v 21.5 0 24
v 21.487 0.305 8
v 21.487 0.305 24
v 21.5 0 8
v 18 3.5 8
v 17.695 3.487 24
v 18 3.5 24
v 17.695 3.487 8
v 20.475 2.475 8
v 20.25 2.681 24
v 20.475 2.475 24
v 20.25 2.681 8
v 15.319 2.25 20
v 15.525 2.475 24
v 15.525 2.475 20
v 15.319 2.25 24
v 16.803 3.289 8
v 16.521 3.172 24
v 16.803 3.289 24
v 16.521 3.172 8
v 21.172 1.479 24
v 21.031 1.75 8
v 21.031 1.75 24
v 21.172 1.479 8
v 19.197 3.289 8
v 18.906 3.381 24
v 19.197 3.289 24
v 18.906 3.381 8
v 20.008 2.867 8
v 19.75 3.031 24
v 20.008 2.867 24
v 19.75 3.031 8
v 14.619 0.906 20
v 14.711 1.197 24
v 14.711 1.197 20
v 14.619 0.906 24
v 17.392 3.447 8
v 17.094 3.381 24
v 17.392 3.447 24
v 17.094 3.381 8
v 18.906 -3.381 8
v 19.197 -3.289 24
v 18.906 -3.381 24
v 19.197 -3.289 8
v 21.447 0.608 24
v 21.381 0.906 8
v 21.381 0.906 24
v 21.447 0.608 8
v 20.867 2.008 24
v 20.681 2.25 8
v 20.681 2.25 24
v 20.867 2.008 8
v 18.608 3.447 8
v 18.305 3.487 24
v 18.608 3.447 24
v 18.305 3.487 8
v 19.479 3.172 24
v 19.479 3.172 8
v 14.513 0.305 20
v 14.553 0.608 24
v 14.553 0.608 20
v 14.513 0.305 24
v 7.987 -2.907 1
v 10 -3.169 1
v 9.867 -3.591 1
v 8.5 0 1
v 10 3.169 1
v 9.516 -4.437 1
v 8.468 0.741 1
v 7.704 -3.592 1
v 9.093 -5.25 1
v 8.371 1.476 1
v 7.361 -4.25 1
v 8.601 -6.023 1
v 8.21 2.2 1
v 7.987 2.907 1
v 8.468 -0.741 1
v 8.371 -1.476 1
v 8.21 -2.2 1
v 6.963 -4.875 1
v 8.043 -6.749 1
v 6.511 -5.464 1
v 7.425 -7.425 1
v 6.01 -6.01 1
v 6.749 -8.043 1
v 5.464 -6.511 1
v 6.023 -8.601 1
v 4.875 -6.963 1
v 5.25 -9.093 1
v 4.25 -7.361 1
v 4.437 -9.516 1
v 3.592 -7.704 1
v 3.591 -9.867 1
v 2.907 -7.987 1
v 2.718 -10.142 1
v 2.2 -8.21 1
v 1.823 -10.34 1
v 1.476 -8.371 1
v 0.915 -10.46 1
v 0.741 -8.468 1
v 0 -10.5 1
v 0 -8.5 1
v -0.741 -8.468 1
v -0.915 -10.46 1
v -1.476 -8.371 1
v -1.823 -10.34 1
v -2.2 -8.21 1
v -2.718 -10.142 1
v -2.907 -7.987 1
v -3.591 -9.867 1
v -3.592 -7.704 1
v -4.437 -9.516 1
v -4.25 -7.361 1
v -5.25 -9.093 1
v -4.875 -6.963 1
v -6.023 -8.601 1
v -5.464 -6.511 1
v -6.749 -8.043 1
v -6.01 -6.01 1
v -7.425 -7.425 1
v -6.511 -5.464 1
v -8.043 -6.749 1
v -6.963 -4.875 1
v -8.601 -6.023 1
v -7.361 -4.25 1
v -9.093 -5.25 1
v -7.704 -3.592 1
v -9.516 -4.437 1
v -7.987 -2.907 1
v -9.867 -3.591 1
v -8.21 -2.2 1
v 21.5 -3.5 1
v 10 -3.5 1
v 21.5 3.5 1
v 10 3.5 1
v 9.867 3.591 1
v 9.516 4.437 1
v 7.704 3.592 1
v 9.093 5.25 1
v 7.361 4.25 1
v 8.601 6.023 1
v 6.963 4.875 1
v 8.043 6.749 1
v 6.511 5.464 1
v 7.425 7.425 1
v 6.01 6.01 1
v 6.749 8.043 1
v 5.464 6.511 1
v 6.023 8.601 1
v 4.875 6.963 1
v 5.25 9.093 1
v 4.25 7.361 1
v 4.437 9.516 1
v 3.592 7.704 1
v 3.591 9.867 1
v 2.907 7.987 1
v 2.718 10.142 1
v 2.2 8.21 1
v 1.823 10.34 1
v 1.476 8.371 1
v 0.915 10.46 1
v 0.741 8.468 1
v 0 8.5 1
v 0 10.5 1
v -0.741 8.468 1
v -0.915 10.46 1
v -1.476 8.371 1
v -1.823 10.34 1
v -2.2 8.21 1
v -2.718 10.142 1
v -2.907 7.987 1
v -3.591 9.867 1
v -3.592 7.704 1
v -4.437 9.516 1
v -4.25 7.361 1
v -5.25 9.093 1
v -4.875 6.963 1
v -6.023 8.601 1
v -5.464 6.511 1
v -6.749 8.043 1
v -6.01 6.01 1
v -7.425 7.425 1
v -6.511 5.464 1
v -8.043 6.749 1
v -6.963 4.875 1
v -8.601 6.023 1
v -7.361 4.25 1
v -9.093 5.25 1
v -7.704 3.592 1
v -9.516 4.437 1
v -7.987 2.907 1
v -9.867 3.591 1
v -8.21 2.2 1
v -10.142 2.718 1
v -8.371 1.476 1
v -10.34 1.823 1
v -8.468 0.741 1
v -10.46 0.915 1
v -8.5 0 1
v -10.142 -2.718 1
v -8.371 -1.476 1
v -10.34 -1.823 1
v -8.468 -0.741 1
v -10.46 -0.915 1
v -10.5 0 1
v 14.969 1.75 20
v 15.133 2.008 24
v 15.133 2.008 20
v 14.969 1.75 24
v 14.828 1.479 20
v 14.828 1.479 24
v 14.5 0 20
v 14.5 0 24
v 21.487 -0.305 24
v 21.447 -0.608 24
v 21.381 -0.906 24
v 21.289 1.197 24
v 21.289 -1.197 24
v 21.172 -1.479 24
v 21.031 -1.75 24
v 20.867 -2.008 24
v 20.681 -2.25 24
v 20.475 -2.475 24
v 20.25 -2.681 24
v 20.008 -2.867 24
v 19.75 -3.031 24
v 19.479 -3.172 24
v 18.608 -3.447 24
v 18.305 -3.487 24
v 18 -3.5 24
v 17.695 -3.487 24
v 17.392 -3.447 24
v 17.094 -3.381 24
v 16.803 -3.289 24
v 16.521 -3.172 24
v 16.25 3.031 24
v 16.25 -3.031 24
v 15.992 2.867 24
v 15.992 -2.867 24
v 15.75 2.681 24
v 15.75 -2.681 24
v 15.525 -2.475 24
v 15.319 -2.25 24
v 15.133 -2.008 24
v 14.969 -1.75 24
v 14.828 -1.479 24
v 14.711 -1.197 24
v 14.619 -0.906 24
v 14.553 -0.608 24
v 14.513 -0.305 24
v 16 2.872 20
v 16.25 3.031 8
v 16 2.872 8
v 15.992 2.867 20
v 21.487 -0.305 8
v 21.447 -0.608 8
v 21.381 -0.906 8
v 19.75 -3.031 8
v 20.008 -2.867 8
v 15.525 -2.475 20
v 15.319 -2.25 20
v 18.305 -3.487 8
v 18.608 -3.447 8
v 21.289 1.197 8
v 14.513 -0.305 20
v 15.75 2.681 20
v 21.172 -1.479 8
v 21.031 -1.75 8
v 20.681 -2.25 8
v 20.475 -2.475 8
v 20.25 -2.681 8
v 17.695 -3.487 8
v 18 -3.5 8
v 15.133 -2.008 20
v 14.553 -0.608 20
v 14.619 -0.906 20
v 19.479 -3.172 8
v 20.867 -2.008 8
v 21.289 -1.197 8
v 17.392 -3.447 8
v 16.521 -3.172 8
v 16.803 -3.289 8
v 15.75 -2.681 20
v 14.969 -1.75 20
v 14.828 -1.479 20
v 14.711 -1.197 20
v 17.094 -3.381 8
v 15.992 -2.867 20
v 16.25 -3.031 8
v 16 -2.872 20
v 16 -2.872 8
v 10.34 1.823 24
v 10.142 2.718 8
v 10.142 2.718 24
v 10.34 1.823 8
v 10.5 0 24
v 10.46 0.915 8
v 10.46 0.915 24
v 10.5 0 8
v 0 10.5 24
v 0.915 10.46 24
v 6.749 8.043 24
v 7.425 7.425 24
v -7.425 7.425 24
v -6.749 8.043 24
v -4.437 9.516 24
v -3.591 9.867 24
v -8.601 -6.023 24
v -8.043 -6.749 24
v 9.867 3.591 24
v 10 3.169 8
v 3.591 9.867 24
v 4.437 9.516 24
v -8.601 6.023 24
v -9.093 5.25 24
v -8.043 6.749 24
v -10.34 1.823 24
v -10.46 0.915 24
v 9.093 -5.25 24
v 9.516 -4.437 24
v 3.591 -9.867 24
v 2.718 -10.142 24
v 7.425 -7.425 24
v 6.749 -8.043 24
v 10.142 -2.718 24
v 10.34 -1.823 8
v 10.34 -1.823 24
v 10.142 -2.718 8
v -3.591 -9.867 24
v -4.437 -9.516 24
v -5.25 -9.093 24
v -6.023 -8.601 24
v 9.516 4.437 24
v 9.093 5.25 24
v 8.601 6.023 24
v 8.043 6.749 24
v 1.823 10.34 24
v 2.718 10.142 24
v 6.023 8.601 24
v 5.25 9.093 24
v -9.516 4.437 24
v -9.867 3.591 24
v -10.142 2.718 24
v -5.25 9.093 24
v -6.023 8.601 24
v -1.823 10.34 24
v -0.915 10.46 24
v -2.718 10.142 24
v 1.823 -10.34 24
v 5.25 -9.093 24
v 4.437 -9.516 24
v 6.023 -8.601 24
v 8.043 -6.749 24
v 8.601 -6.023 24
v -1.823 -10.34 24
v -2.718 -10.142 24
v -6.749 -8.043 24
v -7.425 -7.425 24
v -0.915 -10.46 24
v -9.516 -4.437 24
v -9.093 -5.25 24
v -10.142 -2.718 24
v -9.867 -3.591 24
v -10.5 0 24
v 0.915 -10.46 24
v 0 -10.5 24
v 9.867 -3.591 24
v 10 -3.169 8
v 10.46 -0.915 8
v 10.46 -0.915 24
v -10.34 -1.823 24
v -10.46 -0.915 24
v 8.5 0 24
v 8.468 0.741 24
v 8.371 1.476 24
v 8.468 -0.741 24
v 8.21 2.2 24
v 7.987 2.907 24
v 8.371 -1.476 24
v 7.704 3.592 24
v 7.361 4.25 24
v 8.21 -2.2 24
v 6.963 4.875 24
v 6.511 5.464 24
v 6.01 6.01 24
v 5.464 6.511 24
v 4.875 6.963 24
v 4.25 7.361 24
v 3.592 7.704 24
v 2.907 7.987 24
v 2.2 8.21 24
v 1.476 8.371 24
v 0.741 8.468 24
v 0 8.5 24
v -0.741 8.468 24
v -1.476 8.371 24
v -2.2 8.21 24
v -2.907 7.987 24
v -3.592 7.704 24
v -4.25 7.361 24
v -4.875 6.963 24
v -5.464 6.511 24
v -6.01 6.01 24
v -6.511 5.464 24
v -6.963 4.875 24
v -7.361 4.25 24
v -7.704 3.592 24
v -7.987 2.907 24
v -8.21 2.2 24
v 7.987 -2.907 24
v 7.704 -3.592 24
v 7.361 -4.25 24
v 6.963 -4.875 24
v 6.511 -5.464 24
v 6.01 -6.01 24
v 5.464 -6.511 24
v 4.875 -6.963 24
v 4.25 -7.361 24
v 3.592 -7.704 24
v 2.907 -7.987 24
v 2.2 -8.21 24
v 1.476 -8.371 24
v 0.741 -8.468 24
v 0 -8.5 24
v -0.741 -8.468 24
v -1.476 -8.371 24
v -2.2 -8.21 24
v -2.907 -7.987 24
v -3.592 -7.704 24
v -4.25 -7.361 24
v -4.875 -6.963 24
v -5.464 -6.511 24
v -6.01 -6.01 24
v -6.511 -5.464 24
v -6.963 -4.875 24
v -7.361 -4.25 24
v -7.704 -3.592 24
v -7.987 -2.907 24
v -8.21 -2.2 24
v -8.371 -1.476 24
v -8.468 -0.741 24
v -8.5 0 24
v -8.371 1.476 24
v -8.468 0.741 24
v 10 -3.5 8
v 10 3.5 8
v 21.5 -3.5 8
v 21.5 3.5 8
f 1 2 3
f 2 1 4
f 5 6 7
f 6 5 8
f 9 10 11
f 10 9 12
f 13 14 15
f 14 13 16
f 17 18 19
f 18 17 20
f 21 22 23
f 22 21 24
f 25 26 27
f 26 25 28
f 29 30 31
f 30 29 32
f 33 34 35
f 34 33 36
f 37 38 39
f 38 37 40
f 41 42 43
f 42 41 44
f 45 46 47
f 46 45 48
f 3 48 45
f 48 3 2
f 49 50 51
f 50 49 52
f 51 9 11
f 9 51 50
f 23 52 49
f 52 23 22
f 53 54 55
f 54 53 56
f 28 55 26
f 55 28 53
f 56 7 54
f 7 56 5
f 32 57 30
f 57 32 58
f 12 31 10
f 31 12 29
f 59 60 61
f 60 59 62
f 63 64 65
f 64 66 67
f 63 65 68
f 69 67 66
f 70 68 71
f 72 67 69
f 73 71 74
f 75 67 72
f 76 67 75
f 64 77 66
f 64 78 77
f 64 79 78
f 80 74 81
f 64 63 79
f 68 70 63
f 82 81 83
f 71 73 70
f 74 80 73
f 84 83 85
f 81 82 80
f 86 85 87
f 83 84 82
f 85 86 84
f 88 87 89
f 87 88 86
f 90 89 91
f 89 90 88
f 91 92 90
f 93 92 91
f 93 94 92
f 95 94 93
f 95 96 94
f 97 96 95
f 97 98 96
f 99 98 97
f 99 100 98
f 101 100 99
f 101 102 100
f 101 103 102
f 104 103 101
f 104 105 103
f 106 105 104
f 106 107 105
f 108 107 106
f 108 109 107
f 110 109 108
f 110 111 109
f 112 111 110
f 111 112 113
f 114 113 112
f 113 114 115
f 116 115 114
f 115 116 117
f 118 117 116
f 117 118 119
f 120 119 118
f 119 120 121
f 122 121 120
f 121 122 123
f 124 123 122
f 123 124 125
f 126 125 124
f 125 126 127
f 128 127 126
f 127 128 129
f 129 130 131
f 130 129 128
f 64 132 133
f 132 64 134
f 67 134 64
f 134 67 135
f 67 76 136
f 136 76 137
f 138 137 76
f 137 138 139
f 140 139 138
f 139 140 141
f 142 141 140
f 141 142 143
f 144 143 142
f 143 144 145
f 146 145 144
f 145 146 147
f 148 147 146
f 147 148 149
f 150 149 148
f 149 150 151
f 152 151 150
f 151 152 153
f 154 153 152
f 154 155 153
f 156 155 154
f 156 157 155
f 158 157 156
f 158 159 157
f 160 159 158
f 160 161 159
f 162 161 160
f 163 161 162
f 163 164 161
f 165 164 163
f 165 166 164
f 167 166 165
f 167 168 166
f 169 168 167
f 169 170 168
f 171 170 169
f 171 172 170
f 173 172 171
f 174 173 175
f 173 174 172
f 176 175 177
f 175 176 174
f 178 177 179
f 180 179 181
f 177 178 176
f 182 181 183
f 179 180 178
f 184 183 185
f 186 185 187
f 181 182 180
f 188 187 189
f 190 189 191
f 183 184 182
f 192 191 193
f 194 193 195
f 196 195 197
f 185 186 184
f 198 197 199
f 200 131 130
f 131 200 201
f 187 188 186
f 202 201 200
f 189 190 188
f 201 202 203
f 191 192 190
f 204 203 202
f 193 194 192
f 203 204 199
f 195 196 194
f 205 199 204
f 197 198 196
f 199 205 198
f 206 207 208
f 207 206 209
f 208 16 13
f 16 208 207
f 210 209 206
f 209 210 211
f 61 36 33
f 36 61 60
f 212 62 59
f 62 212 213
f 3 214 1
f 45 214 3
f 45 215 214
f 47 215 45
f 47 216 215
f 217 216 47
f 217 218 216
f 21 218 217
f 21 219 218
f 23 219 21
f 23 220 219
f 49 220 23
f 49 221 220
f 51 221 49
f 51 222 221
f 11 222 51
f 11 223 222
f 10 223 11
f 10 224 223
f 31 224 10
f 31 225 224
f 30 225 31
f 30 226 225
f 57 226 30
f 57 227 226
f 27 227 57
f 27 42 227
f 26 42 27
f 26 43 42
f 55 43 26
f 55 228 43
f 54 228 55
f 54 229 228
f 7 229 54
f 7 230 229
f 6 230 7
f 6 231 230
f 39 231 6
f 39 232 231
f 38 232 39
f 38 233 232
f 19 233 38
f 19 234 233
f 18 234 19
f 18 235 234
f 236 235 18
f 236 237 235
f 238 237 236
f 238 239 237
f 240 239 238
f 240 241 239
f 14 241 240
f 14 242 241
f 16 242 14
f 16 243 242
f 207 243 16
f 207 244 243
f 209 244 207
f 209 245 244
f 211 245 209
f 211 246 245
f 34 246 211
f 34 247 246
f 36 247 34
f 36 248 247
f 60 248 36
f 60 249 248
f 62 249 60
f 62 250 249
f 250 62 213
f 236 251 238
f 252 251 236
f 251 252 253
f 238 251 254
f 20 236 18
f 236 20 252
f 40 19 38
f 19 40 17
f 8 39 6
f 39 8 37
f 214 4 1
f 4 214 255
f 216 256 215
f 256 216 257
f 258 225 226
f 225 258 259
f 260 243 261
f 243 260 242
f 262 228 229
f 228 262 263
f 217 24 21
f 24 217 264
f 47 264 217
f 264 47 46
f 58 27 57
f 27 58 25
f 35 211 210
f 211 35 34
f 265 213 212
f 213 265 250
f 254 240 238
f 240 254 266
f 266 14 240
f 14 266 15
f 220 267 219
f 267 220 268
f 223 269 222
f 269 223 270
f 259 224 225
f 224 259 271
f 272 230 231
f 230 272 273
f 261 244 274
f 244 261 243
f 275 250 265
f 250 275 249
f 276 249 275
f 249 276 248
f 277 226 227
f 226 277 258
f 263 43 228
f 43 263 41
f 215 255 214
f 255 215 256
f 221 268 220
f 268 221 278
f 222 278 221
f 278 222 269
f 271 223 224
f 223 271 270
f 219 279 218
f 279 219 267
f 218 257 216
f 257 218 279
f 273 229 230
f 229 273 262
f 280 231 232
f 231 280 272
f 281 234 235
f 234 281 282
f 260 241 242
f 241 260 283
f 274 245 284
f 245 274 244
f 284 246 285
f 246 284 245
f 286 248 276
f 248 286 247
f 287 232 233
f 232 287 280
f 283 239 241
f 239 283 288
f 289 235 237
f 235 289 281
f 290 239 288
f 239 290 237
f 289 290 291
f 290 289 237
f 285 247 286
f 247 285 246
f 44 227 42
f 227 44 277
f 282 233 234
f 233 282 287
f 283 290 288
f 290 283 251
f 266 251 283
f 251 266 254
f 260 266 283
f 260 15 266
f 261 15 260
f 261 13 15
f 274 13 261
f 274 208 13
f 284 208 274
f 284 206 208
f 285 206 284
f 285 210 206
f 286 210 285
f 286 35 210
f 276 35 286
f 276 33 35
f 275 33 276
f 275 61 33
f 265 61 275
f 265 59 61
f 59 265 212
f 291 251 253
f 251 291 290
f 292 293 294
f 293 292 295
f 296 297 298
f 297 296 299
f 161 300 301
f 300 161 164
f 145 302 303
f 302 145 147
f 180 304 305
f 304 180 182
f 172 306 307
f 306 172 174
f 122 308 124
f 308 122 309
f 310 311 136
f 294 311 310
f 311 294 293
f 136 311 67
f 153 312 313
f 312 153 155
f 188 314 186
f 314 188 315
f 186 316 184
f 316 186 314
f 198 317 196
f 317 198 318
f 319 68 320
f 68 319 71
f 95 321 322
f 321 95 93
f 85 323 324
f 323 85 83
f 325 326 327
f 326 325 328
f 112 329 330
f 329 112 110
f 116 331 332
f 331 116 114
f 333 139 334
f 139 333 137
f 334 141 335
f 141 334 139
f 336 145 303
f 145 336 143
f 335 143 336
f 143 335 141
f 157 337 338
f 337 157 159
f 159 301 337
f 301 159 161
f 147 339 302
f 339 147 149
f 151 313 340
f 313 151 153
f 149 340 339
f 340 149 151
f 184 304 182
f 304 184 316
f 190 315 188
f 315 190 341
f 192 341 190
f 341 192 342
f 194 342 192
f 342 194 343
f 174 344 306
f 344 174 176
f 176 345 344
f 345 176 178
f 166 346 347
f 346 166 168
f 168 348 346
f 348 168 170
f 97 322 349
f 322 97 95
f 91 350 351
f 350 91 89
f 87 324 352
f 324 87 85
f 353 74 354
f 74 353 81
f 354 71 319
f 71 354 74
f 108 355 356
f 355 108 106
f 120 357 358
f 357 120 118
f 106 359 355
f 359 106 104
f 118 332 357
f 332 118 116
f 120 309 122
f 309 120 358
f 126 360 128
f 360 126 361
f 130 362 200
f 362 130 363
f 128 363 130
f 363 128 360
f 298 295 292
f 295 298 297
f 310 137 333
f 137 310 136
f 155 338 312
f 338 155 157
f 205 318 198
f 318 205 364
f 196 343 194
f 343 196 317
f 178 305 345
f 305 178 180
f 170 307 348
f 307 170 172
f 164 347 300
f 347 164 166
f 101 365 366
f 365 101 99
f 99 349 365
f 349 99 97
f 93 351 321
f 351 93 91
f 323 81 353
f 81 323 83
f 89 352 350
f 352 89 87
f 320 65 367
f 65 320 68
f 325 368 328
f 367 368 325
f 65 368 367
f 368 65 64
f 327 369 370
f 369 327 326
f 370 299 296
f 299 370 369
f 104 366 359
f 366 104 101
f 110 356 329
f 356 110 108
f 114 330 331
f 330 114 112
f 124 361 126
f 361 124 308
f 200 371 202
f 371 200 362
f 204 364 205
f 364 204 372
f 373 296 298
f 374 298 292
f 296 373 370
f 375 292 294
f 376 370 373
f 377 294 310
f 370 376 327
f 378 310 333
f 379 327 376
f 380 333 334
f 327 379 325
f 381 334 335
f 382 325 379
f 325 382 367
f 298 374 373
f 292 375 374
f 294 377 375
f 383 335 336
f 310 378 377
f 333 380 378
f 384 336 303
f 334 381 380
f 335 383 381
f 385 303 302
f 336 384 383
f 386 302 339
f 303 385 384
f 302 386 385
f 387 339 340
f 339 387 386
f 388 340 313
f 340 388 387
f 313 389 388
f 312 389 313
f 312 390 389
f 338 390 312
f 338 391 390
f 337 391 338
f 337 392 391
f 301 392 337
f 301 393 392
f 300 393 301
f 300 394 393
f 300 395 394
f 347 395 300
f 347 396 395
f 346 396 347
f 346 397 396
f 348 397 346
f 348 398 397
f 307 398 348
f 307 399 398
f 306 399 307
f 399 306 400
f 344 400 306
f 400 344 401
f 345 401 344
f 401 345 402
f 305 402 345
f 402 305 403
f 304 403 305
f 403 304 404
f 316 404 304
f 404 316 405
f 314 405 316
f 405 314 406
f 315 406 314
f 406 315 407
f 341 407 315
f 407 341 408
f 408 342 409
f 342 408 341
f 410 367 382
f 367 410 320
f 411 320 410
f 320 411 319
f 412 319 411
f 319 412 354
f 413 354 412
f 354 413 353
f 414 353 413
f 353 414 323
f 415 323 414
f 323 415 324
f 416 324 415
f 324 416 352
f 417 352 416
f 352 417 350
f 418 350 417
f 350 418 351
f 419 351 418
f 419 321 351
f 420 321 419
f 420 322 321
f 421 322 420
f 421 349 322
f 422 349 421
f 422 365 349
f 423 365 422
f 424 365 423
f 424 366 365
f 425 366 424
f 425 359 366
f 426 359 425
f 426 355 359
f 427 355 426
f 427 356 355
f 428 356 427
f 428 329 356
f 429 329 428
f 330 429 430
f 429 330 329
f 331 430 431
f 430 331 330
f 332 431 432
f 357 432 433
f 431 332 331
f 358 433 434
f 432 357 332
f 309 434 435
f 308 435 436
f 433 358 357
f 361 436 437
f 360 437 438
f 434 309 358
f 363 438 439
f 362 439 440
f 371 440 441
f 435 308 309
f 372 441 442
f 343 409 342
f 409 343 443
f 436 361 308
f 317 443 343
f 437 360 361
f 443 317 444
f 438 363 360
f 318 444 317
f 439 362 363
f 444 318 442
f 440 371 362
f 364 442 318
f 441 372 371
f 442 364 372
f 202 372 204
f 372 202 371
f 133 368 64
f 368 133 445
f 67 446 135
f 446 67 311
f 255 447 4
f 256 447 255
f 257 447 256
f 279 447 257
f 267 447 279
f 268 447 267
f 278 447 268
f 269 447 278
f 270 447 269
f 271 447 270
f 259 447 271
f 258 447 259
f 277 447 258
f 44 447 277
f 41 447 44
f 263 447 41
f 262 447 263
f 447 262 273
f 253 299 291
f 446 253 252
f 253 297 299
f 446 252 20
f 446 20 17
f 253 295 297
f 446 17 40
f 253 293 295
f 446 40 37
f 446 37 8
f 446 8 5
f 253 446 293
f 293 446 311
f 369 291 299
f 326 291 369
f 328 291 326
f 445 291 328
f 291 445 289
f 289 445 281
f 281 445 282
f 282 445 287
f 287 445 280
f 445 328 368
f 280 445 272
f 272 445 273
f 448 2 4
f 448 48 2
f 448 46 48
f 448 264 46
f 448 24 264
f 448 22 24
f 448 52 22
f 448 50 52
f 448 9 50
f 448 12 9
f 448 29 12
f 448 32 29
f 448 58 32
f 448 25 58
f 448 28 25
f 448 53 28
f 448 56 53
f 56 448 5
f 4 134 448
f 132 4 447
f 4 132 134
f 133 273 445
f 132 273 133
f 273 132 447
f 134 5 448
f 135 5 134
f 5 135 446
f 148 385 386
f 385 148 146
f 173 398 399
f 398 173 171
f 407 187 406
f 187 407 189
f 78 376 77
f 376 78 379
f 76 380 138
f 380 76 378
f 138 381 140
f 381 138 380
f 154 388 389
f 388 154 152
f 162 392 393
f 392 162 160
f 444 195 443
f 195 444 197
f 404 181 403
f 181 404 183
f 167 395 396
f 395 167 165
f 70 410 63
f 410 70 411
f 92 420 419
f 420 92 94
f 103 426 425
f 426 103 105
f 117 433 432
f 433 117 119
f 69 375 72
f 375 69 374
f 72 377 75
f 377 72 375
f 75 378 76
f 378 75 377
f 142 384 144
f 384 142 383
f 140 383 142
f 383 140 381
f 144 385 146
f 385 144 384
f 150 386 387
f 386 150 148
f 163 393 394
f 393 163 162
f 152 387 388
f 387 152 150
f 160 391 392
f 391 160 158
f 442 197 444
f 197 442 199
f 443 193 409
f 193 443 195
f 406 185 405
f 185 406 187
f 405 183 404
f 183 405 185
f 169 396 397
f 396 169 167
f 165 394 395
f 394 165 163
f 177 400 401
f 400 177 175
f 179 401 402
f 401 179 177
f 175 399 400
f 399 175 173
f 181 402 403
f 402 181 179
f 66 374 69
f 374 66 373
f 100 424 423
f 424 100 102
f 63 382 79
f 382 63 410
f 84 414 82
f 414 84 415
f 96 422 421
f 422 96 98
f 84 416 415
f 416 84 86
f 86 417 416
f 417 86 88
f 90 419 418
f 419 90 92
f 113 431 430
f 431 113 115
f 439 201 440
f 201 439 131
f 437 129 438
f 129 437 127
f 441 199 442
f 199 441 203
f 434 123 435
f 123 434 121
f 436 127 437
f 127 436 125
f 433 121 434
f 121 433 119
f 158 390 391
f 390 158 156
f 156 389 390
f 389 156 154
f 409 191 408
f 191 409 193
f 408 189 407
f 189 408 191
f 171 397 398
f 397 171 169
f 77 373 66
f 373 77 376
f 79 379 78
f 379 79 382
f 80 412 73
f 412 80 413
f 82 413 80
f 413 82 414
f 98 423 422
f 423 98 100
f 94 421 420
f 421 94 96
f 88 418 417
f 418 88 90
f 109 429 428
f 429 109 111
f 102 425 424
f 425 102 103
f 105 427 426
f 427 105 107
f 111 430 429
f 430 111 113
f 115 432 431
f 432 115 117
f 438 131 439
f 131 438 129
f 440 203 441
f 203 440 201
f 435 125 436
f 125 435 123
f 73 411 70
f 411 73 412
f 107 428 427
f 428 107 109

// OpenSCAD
$fs = 0.1;  // Don't genrate smaller facets than 0.1 mm
$fa = 5;    // Don't generate larger angles than 5 degrees

ic = 17; // inner diameter of pipe holder
pht = 4; // thickness of the pipe holder
phh = 25; // height of pipeholder
pd = 7; // diameter of the peg 


union() { 
    }

hook(phh);
pipeholder(ic, pht, phh);

module pipeholder (ic, pht, phh) {
    difference () {
        union() { 
            color("yellow") translate([0,0,1]) cylinder(h=(phh-2), r=((ic/2)+(pht/2)));
            color ("purple") translate([10,-3.5,1]) cube ([11.5,7,7]);
        }
        color("Green") cylinder(h=phh, r=ic/2);
 
    }   
}
   
module hook (phh) {
    difference() {
        color("red") translate([18,0,1]) cylinder(h=(phh-2), r=3.5);
        color("blue") translate([13,-3,3]) cube ([3,6,17]);
    }
}
